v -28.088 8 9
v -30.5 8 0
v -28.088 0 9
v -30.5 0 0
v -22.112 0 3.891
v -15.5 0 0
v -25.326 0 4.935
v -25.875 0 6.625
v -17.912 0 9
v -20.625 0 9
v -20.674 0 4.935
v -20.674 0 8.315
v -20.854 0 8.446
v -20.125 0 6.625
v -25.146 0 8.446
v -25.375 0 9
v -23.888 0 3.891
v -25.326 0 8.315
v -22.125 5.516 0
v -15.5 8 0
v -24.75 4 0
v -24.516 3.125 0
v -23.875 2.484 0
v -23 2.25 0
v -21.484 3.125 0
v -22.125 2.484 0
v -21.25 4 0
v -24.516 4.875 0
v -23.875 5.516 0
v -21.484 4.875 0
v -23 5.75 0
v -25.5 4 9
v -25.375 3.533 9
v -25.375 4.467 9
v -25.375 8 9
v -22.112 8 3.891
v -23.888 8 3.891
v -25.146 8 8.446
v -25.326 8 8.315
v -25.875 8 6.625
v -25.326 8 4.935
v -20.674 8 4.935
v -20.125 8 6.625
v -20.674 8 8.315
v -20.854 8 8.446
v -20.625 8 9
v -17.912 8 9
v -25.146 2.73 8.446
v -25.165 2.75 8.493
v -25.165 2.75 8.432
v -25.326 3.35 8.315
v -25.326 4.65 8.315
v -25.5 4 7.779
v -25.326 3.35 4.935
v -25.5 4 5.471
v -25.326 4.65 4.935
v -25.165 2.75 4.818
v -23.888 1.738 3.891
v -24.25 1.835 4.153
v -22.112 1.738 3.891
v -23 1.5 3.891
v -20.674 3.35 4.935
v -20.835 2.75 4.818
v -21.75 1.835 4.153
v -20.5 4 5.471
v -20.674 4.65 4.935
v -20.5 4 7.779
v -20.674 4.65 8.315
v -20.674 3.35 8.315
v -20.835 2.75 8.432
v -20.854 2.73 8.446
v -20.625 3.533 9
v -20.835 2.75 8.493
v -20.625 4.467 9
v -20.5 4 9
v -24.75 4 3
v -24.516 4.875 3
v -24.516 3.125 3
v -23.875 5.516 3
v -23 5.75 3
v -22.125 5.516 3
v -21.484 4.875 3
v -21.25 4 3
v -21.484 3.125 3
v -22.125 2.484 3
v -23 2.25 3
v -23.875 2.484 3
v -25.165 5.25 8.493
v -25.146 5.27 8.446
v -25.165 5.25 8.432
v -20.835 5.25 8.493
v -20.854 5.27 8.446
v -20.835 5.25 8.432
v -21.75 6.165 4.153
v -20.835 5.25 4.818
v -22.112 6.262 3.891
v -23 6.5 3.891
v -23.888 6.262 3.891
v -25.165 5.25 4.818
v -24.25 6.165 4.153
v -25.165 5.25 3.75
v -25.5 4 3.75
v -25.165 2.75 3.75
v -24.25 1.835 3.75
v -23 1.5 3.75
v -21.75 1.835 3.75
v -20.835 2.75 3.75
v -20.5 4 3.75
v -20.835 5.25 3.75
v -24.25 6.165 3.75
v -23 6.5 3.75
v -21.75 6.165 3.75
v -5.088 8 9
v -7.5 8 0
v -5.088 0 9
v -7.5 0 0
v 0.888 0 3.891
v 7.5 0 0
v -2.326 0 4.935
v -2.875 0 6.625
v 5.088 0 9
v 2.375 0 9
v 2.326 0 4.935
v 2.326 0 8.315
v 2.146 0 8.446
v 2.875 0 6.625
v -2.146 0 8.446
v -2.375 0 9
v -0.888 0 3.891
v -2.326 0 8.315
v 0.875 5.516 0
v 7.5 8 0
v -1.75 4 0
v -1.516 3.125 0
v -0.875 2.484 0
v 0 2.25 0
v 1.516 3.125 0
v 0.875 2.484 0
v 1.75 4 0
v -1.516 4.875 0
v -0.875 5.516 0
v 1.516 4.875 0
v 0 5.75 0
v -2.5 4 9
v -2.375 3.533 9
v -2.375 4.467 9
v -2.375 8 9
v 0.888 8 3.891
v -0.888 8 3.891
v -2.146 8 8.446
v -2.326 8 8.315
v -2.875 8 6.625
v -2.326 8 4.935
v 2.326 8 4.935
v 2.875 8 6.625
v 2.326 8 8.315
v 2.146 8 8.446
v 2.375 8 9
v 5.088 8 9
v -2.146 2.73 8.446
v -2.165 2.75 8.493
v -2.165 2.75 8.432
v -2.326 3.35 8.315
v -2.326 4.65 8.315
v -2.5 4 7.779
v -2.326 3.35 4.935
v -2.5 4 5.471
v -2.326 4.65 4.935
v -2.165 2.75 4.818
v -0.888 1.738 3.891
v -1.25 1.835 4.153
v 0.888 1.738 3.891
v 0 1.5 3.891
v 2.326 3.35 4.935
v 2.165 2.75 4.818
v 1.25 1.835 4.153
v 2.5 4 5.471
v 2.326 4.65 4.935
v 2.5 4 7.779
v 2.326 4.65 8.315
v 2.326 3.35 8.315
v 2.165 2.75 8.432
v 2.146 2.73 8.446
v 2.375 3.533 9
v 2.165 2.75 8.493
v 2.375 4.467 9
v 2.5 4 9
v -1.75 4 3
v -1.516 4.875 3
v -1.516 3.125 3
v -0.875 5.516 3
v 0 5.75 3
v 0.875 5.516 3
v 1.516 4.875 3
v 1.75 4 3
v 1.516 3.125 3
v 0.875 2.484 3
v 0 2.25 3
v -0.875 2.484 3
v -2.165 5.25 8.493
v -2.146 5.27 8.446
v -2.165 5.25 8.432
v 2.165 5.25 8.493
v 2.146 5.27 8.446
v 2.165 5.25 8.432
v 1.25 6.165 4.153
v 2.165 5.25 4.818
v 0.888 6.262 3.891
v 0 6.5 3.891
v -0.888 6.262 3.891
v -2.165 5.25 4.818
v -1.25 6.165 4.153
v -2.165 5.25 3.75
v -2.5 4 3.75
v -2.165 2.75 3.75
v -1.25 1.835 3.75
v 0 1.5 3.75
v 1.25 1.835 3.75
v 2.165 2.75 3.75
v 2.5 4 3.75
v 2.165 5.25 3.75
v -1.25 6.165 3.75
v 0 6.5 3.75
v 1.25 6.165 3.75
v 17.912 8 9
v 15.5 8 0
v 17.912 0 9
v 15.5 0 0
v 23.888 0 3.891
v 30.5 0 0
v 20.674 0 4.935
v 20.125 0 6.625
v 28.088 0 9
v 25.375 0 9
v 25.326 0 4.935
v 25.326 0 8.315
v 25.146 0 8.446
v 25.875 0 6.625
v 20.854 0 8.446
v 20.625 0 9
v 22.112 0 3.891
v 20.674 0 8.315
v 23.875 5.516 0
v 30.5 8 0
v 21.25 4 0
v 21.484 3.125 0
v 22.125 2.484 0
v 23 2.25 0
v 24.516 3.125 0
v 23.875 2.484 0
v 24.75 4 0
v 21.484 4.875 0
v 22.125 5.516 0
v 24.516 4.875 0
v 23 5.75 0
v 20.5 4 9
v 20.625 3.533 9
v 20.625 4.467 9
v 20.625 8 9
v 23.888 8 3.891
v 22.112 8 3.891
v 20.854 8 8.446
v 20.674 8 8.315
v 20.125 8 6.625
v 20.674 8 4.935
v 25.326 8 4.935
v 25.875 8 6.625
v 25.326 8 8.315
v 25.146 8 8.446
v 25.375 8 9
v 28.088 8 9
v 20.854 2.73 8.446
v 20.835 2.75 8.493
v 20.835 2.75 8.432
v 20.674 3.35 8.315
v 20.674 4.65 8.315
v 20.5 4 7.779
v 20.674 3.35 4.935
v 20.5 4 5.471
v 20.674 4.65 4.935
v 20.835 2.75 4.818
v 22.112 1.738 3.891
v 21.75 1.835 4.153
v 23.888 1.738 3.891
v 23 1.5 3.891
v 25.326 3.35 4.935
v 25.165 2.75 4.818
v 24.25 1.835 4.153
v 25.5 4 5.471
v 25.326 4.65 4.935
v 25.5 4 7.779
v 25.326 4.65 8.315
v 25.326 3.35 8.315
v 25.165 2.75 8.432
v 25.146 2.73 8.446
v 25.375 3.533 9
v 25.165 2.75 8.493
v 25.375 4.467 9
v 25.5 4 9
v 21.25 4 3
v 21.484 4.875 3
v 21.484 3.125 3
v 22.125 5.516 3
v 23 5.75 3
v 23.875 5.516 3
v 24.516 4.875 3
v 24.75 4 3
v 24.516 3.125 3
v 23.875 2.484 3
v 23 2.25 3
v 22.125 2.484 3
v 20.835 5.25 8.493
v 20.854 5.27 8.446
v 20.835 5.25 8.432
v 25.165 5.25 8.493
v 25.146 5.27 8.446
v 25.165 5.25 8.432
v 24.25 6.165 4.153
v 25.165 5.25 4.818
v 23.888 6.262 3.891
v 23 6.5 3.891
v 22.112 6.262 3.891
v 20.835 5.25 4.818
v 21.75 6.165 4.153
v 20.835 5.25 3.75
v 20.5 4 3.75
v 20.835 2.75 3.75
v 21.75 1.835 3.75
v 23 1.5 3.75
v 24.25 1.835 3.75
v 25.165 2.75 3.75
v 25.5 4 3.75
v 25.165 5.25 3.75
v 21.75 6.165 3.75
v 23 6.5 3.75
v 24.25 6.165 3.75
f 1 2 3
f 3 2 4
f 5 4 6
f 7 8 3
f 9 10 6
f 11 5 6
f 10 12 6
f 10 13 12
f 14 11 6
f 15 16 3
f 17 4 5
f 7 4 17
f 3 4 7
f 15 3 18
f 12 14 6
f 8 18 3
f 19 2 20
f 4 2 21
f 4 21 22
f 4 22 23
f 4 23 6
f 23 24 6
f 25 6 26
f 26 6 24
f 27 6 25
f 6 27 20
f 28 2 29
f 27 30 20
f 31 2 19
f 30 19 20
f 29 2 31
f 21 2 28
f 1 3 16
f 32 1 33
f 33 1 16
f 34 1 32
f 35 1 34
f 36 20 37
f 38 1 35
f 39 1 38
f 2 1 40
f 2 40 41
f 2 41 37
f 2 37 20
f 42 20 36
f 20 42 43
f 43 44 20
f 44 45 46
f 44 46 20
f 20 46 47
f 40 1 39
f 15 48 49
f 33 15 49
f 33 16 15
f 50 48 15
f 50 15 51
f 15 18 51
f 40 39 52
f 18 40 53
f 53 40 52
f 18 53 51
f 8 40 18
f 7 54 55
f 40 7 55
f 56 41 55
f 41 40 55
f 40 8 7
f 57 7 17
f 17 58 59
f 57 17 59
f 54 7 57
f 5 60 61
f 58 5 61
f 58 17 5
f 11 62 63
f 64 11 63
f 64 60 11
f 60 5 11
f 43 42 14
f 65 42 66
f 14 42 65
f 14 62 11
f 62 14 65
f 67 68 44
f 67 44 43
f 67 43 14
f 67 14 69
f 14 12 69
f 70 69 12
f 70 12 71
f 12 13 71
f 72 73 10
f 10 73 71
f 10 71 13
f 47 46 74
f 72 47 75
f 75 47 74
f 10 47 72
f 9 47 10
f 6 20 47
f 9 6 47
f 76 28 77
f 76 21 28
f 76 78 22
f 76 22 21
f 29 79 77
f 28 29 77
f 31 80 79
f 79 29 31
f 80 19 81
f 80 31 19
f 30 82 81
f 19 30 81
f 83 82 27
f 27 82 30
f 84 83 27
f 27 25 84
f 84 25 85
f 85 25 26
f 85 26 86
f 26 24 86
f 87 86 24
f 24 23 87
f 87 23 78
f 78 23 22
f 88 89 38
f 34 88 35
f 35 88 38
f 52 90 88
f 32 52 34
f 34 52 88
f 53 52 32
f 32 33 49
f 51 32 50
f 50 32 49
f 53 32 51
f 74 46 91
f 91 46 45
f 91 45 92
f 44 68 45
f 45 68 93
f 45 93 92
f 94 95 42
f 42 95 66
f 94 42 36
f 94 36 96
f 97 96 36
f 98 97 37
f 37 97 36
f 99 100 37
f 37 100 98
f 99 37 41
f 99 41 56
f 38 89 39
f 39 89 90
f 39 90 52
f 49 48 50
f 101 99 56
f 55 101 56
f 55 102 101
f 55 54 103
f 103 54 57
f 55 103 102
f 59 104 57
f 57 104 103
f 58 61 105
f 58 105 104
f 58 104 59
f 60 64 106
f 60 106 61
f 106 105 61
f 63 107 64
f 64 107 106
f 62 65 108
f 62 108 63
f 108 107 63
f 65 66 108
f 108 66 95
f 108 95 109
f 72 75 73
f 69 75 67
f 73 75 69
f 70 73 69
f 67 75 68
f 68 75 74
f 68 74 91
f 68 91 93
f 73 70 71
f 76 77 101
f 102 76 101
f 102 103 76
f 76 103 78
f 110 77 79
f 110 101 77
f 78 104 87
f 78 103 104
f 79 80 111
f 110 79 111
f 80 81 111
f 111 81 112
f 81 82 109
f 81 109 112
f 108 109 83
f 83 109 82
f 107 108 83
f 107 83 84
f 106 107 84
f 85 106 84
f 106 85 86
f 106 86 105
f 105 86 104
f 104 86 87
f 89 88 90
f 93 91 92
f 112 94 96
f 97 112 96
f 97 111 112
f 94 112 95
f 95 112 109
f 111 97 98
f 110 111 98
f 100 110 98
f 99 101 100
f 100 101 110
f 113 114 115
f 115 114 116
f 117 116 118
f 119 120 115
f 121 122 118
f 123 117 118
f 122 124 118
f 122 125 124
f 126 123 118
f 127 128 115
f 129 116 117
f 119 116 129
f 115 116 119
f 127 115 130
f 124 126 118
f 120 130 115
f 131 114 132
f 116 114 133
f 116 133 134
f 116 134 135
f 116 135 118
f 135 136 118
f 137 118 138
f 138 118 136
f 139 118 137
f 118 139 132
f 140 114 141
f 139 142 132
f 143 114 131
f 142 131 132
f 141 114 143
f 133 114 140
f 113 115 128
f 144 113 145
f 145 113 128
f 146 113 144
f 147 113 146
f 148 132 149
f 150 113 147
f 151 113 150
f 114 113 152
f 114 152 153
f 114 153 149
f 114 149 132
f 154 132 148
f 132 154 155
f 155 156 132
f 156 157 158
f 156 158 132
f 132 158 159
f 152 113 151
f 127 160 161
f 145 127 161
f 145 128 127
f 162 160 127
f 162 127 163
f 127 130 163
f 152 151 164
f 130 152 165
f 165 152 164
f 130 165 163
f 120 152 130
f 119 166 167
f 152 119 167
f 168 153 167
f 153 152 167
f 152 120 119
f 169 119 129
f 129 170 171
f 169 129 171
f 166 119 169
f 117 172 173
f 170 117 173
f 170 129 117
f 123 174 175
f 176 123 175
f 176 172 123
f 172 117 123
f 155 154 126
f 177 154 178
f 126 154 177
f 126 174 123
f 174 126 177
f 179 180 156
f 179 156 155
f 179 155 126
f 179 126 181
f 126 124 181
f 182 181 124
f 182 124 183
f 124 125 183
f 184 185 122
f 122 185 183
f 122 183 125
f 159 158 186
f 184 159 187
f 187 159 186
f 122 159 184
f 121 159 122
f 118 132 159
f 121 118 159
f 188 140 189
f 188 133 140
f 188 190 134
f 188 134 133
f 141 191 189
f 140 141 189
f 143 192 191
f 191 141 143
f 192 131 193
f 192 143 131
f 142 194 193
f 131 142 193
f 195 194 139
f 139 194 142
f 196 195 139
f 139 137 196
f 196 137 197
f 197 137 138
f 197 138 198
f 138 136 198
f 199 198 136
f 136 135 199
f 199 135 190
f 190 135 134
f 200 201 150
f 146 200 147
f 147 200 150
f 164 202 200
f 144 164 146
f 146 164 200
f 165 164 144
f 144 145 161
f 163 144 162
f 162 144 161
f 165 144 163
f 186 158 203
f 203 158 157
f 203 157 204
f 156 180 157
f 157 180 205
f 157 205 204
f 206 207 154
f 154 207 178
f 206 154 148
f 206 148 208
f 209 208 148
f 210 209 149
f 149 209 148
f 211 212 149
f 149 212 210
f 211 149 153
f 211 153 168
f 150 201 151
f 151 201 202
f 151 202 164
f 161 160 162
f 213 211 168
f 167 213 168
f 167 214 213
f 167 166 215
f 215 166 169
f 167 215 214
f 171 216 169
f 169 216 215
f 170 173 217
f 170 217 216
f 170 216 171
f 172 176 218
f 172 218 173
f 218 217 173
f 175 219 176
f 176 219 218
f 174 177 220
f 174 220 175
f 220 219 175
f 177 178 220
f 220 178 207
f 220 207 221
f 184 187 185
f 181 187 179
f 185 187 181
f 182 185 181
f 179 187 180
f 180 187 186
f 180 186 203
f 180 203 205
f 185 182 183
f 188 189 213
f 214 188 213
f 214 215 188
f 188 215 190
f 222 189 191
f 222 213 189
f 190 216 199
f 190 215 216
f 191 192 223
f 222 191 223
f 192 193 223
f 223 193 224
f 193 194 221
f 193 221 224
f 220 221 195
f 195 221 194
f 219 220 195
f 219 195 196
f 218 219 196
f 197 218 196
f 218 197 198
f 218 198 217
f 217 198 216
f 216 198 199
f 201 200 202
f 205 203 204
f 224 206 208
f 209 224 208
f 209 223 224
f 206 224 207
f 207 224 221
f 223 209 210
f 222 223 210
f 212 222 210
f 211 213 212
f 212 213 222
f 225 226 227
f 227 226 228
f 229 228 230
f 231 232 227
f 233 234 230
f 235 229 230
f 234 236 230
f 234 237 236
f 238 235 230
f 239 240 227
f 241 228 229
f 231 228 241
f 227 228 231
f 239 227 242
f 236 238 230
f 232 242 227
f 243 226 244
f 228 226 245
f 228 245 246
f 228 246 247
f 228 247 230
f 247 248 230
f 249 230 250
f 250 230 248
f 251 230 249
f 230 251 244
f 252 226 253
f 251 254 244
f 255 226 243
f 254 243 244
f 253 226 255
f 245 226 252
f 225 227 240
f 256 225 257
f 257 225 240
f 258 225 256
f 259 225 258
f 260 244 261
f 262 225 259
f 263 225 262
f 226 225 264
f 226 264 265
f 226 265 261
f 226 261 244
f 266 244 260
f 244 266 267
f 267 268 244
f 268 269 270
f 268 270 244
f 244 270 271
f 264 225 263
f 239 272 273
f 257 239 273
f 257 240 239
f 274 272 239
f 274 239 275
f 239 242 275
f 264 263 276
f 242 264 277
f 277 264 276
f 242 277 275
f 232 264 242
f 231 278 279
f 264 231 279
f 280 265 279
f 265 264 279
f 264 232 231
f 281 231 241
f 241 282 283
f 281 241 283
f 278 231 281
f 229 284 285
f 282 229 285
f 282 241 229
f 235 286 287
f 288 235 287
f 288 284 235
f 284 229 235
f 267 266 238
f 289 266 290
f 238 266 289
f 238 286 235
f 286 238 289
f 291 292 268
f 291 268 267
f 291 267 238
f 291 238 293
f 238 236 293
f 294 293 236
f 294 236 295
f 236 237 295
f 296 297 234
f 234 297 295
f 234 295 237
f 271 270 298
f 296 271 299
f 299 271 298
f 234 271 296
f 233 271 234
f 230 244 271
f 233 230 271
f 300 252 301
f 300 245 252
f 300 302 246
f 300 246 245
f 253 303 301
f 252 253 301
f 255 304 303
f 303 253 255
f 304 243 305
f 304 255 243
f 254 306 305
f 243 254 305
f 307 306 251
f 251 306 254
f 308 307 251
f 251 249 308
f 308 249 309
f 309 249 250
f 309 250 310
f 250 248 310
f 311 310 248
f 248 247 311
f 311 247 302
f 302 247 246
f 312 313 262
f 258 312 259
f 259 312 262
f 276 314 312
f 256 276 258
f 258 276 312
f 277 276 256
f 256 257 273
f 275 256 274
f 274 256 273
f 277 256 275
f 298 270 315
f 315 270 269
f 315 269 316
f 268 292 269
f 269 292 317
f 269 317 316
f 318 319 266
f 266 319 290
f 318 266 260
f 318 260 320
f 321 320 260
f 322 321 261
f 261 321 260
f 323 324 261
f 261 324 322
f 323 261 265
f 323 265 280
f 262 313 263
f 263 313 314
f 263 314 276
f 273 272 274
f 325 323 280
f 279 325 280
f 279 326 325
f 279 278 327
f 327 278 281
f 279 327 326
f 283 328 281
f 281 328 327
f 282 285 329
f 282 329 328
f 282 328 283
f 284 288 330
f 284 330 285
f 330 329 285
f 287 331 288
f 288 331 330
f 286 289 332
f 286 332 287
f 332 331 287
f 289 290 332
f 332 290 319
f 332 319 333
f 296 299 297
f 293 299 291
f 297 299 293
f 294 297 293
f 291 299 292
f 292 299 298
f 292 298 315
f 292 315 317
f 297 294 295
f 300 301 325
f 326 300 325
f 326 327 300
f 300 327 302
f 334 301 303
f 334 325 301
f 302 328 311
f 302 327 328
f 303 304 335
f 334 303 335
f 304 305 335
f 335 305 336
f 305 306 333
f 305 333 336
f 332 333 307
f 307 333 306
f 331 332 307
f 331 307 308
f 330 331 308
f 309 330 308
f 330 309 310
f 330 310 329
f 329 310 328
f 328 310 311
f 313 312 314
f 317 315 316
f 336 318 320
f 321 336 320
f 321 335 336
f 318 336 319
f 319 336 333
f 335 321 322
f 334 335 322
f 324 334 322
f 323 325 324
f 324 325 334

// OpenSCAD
// od = overall diameter (for screw head)
// oh = overall height (screw + head +recesss)
// sd = screw diameter
// sh = screw height (to top of countersink)
module countersink(od, oh, sd, sh, d)
{
    union()
    {
        intersection()
	    {
            translate([0,0,-sh-d]) cylinder(r=od/2, h=oh+2*d, $fn=12);
            translate([0,0,-od/2]) cylinder(r1=0, r2=oh+od/2, h=oh+od/2, $fn=12);
        }
    translate([0,0,-sh]) cylinder(r=sd/2, h=sh, $fn=12);
    }
}

// l   = length of clip
// w   = width (depth) of clip
// h   = height of clip
// pd  = pipe hole diameter
// pg  = pipe gap diameter
// shd = Screw head diameter
// ssd = screw shaft diameter
// d   = delta
module PipeClip(l, w, h, pd, pg, shd, ssd, d)
{
    difference()
    {
        translate([-l/2,0,0])
            cube(size=[l, w, h]);
        translate([0,-d,h]) 
            rotate([-90,0,0]) 
                cylinder(r=pg/2, h=w+2*d);
        translate([0,-d,h-pg/2]) 
            rotate([-90,0,0]) 
                cylinder(r=pd/2, h=w+2*d);
        translate([0,w/2,h-(pd+pg)/2]) 
            countersink(shd, h, ssd, h-(pd+pg)/2+d, d);
        translate([l/2,-d,0]) 
            rotate([0,-15,0]) 
                cube(size=[l,w+2*d,h+w]);
        translate([-l/2,-d,0]) 
            rotate([0,15,0]) 
                translate([-l,0,0]) 
                    cube(size=[l,w+2*d,h+w]);
    }
}

l = 15;
w = 8;
p = l+w;
xn   = 3;
yn   = 1;
xlim = (xn-1)/2;
ylim = (yn-1)/2;

for (xo = [-xlim:xlim])
{
    for (yo = [-ylim:ylim])
    {
        translate([xo*p,yo*p,0])
            PipeClip(l, w, 9, 5.75, 4.75, 5, 3.5, 1);
    }
}


//PipeClip(15, 8, 10, 7, 6, 6, 3, 1);

//translate([0,-20,0]) countersink(6, 12, 3.5, 5, 1);
